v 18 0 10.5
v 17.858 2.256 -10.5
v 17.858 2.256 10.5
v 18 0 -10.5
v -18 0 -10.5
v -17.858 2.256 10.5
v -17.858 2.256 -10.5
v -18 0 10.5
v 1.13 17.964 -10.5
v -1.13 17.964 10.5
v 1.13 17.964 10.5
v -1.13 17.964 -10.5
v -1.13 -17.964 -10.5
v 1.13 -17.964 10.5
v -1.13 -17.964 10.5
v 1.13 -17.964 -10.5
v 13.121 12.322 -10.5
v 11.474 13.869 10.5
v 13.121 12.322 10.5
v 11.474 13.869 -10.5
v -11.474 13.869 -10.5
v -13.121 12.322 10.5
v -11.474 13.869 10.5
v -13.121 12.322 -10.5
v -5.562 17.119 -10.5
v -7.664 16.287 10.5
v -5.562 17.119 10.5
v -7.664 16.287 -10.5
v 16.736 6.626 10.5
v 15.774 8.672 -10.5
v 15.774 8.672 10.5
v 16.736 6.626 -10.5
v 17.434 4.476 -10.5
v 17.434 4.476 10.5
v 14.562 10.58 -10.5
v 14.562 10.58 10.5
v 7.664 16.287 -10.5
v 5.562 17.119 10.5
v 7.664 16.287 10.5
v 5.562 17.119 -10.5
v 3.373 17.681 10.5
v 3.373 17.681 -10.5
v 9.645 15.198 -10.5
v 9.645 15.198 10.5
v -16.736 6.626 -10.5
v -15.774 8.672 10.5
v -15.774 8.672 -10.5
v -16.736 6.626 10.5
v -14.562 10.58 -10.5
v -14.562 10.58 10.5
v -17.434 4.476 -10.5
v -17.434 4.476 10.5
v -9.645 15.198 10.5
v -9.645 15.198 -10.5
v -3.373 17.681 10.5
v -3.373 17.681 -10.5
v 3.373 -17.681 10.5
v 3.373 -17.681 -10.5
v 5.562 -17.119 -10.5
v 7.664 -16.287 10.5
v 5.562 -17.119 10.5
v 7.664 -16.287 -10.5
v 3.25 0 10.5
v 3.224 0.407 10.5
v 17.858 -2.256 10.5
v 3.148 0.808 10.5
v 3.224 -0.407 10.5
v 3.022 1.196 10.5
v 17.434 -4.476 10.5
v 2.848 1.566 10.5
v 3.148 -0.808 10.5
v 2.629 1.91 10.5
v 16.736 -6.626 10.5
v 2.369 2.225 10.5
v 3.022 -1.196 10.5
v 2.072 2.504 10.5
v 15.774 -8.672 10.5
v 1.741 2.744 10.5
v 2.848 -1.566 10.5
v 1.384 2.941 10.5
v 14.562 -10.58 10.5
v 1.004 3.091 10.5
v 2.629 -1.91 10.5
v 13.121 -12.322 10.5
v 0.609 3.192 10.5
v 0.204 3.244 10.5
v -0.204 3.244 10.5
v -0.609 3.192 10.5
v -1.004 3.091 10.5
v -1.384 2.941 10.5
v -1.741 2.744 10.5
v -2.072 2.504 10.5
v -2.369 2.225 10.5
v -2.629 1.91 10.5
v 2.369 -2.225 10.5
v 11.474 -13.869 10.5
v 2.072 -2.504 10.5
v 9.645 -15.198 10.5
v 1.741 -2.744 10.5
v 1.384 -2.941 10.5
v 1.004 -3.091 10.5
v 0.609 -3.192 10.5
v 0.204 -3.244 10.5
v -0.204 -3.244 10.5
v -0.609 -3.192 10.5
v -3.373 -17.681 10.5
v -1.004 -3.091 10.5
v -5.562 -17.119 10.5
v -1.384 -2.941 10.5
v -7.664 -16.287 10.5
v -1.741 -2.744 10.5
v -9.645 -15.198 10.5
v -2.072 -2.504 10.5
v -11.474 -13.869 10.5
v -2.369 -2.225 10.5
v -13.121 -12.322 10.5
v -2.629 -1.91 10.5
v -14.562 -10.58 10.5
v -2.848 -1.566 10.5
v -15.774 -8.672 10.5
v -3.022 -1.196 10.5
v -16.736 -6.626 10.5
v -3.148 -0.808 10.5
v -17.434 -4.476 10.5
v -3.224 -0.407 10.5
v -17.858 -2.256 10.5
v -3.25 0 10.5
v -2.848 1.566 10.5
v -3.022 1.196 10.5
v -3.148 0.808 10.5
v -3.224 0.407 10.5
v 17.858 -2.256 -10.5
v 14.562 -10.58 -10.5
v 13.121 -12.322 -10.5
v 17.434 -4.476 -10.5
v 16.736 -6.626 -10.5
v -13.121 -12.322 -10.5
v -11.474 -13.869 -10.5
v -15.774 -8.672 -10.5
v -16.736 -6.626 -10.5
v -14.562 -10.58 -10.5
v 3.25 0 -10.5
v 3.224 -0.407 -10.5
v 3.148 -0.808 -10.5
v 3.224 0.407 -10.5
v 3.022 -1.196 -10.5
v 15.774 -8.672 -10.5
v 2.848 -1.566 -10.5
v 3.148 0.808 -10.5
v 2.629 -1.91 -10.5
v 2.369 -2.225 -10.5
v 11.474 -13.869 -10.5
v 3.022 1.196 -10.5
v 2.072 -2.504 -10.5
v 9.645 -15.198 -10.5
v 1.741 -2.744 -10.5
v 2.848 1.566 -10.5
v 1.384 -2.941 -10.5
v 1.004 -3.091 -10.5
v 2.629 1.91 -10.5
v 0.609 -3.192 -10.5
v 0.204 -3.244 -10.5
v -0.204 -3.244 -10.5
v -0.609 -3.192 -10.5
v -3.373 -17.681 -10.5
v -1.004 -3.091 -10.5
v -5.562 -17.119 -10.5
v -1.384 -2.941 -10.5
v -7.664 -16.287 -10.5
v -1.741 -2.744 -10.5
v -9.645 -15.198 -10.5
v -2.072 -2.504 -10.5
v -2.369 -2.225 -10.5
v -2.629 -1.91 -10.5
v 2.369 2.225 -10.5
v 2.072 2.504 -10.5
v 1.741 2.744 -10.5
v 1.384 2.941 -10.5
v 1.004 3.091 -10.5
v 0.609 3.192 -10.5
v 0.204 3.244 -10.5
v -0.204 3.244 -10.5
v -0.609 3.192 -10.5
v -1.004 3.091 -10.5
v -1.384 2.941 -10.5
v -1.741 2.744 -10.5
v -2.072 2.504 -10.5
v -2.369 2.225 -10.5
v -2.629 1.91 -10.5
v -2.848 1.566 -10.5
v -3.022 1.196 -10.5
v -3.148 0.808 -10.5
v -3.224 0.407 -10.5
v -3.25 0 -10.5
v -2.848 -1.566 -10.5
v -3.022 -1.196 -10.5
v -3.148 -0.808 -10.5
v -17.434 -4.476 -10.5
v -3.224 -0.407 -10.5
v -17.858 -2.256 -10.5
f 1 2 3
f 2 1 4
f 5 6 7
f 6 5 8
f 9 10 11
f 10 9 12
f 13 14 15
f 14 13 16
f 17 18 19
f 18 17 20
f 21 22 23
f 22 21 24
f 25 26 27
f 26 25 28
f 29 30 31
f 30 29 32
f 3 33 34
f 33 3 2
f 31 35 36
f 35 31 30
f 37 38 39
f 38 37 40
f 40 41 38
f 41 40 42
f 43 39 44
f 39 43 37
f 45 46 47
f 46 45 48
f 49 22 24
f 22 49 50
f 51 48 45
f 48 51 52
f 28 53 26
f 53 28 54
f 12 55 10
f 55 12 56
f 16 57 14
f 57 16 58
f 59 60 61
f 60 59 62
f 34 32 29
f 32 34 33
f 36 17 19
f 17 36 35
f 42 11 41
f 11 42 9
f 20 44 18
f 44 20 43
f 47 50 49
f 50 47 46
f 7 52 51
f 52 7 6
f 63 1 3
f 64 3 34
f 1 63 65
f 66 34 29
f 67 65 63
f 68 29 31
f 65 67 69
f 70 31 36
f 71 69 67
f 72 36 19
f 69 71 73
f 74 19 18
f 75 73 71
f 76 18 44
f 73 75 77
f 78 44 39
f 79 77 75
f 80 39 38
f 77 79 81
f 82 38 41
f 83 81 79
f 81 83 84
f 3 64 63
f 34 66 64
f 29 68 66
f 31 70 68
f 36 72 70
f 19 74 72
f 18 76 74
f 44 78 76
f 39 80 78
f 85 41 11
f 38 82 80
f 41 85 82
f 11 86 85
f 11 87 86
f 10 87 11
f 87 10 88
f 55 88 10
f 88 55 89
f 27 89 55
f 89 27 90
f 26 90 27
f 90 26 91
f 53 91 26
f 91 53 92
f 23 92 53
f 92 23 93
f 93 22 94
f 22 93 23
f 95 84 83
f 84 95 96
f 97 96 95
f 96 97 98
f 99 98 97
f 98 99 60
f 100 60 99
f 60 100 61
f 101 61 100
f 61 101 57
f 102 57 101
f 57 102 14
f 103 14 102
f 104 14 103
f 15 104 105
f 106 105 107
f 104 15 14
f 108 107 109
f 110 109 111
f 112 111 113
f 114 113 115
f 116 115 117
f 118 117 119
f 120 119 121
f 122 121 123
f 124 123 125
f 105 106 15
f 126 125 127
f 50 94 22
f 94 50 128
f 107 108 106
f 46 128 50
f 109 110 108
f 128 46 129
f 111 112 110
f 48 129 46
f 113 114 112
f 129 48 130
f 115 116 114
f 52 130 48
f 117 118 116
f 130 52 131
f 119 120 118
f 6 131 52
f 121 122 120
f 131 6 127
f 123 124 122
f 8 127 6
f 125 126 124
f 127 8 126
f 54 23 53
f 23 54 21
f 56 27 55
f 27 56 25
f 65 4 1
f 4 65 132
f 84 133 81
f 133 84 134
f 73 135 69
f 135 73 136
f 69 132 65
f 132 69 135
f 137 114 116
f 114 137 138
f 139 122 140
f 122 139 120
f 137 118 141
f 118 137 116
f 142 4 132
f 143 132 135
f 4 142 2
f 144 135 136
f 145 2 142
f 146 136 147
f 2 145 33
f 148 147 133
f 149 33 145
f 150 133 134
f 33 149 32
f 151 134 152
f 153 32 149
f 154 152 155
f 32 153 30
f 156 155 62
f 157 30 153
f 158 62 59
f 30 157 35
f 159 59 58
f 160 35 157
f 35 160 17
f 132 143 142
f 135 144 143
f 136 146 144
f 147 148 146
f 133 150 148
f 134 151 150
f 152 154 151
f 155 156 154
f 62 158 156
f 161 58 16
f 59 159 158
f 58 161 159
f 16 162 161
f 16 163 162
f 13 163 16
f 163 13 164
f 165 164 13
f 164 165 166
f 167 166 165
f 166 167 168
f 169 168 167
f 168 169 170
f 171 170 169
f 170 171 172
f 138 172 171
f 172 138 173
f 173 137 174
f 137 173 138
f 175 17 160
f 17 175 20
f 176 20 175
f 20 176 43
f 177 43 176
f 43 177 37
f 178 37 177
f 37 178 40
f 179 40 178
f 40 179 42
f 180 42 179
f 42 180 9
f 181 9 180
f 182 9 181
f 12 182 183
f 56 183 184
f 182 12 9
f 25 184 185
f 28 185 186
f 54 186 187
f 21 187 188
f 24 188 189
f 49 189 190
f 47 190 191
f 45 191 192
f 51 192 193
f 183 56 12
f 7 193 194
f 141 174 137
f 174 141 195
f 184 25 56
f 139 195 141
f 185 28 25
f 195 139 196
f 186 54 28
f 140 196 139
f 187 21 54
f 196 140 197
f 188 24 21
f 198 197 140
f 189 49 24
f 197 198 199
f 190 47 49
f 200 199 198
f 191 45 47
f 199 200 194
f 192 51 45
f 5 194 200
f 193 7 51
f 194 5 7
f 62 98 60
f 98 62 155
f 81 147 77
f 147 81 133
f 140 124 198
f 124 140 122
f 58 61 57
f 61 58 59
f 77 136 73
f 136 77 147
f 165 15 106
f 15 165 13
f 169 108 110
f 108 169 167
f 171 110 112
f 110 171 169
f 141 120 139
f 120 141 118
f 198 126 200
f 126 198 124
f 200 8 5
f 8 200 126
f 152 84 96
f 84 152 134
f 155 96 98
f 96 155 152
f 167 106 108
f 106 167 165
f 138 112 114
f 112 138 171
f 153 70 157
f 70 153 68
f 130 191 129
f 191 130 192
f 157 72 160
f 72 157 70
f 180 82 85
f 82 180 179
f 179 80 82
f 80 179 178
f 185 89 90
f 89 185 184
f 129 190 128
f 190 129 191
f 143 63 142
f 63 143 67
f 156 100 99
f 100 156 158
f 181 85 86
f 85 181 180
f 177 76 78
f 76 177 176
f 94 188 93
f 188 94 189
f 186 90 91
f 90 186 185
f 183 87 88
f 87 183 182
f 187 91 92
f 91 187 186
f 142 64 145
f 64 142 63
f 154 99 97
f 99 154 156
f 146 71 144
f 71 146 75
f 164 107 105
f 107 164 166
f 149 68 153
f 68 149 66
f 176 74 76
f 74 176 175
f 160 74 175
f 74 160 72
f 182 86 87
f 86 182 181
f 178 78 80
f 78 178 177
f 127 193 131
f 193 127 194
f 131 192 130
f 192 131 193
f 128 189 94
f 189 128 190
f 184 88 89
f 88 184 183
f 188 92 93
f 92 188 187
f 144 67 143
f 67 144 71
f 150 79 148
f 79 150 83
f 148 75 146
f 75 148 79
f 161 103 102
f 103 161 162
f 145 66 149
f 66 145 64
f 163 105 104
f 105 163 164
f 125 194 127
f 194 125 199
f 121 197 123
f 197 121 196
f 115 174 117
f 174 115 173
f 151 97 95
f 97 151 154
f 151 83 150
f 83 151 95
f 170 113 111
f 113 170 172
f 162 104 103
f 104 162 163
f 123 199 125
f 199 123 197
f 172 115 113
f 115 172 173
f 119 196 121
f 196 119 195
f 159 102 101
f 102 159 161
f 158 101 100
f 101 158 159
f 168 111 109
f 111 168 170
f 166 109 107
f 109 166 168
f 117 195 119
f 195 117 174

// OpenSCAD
$fn = 50;


difference() {
	union() {
		translate(v = [0, 0, -10.5000000000]) {
			cylinder(h = 21, r = 18.0000000000);
		}
	}
	union() {
		translate(v = [0, 0, -100.0000000000]) {
			cylinder(h = 200, r = 3.2500000000);
		}
	}
}
